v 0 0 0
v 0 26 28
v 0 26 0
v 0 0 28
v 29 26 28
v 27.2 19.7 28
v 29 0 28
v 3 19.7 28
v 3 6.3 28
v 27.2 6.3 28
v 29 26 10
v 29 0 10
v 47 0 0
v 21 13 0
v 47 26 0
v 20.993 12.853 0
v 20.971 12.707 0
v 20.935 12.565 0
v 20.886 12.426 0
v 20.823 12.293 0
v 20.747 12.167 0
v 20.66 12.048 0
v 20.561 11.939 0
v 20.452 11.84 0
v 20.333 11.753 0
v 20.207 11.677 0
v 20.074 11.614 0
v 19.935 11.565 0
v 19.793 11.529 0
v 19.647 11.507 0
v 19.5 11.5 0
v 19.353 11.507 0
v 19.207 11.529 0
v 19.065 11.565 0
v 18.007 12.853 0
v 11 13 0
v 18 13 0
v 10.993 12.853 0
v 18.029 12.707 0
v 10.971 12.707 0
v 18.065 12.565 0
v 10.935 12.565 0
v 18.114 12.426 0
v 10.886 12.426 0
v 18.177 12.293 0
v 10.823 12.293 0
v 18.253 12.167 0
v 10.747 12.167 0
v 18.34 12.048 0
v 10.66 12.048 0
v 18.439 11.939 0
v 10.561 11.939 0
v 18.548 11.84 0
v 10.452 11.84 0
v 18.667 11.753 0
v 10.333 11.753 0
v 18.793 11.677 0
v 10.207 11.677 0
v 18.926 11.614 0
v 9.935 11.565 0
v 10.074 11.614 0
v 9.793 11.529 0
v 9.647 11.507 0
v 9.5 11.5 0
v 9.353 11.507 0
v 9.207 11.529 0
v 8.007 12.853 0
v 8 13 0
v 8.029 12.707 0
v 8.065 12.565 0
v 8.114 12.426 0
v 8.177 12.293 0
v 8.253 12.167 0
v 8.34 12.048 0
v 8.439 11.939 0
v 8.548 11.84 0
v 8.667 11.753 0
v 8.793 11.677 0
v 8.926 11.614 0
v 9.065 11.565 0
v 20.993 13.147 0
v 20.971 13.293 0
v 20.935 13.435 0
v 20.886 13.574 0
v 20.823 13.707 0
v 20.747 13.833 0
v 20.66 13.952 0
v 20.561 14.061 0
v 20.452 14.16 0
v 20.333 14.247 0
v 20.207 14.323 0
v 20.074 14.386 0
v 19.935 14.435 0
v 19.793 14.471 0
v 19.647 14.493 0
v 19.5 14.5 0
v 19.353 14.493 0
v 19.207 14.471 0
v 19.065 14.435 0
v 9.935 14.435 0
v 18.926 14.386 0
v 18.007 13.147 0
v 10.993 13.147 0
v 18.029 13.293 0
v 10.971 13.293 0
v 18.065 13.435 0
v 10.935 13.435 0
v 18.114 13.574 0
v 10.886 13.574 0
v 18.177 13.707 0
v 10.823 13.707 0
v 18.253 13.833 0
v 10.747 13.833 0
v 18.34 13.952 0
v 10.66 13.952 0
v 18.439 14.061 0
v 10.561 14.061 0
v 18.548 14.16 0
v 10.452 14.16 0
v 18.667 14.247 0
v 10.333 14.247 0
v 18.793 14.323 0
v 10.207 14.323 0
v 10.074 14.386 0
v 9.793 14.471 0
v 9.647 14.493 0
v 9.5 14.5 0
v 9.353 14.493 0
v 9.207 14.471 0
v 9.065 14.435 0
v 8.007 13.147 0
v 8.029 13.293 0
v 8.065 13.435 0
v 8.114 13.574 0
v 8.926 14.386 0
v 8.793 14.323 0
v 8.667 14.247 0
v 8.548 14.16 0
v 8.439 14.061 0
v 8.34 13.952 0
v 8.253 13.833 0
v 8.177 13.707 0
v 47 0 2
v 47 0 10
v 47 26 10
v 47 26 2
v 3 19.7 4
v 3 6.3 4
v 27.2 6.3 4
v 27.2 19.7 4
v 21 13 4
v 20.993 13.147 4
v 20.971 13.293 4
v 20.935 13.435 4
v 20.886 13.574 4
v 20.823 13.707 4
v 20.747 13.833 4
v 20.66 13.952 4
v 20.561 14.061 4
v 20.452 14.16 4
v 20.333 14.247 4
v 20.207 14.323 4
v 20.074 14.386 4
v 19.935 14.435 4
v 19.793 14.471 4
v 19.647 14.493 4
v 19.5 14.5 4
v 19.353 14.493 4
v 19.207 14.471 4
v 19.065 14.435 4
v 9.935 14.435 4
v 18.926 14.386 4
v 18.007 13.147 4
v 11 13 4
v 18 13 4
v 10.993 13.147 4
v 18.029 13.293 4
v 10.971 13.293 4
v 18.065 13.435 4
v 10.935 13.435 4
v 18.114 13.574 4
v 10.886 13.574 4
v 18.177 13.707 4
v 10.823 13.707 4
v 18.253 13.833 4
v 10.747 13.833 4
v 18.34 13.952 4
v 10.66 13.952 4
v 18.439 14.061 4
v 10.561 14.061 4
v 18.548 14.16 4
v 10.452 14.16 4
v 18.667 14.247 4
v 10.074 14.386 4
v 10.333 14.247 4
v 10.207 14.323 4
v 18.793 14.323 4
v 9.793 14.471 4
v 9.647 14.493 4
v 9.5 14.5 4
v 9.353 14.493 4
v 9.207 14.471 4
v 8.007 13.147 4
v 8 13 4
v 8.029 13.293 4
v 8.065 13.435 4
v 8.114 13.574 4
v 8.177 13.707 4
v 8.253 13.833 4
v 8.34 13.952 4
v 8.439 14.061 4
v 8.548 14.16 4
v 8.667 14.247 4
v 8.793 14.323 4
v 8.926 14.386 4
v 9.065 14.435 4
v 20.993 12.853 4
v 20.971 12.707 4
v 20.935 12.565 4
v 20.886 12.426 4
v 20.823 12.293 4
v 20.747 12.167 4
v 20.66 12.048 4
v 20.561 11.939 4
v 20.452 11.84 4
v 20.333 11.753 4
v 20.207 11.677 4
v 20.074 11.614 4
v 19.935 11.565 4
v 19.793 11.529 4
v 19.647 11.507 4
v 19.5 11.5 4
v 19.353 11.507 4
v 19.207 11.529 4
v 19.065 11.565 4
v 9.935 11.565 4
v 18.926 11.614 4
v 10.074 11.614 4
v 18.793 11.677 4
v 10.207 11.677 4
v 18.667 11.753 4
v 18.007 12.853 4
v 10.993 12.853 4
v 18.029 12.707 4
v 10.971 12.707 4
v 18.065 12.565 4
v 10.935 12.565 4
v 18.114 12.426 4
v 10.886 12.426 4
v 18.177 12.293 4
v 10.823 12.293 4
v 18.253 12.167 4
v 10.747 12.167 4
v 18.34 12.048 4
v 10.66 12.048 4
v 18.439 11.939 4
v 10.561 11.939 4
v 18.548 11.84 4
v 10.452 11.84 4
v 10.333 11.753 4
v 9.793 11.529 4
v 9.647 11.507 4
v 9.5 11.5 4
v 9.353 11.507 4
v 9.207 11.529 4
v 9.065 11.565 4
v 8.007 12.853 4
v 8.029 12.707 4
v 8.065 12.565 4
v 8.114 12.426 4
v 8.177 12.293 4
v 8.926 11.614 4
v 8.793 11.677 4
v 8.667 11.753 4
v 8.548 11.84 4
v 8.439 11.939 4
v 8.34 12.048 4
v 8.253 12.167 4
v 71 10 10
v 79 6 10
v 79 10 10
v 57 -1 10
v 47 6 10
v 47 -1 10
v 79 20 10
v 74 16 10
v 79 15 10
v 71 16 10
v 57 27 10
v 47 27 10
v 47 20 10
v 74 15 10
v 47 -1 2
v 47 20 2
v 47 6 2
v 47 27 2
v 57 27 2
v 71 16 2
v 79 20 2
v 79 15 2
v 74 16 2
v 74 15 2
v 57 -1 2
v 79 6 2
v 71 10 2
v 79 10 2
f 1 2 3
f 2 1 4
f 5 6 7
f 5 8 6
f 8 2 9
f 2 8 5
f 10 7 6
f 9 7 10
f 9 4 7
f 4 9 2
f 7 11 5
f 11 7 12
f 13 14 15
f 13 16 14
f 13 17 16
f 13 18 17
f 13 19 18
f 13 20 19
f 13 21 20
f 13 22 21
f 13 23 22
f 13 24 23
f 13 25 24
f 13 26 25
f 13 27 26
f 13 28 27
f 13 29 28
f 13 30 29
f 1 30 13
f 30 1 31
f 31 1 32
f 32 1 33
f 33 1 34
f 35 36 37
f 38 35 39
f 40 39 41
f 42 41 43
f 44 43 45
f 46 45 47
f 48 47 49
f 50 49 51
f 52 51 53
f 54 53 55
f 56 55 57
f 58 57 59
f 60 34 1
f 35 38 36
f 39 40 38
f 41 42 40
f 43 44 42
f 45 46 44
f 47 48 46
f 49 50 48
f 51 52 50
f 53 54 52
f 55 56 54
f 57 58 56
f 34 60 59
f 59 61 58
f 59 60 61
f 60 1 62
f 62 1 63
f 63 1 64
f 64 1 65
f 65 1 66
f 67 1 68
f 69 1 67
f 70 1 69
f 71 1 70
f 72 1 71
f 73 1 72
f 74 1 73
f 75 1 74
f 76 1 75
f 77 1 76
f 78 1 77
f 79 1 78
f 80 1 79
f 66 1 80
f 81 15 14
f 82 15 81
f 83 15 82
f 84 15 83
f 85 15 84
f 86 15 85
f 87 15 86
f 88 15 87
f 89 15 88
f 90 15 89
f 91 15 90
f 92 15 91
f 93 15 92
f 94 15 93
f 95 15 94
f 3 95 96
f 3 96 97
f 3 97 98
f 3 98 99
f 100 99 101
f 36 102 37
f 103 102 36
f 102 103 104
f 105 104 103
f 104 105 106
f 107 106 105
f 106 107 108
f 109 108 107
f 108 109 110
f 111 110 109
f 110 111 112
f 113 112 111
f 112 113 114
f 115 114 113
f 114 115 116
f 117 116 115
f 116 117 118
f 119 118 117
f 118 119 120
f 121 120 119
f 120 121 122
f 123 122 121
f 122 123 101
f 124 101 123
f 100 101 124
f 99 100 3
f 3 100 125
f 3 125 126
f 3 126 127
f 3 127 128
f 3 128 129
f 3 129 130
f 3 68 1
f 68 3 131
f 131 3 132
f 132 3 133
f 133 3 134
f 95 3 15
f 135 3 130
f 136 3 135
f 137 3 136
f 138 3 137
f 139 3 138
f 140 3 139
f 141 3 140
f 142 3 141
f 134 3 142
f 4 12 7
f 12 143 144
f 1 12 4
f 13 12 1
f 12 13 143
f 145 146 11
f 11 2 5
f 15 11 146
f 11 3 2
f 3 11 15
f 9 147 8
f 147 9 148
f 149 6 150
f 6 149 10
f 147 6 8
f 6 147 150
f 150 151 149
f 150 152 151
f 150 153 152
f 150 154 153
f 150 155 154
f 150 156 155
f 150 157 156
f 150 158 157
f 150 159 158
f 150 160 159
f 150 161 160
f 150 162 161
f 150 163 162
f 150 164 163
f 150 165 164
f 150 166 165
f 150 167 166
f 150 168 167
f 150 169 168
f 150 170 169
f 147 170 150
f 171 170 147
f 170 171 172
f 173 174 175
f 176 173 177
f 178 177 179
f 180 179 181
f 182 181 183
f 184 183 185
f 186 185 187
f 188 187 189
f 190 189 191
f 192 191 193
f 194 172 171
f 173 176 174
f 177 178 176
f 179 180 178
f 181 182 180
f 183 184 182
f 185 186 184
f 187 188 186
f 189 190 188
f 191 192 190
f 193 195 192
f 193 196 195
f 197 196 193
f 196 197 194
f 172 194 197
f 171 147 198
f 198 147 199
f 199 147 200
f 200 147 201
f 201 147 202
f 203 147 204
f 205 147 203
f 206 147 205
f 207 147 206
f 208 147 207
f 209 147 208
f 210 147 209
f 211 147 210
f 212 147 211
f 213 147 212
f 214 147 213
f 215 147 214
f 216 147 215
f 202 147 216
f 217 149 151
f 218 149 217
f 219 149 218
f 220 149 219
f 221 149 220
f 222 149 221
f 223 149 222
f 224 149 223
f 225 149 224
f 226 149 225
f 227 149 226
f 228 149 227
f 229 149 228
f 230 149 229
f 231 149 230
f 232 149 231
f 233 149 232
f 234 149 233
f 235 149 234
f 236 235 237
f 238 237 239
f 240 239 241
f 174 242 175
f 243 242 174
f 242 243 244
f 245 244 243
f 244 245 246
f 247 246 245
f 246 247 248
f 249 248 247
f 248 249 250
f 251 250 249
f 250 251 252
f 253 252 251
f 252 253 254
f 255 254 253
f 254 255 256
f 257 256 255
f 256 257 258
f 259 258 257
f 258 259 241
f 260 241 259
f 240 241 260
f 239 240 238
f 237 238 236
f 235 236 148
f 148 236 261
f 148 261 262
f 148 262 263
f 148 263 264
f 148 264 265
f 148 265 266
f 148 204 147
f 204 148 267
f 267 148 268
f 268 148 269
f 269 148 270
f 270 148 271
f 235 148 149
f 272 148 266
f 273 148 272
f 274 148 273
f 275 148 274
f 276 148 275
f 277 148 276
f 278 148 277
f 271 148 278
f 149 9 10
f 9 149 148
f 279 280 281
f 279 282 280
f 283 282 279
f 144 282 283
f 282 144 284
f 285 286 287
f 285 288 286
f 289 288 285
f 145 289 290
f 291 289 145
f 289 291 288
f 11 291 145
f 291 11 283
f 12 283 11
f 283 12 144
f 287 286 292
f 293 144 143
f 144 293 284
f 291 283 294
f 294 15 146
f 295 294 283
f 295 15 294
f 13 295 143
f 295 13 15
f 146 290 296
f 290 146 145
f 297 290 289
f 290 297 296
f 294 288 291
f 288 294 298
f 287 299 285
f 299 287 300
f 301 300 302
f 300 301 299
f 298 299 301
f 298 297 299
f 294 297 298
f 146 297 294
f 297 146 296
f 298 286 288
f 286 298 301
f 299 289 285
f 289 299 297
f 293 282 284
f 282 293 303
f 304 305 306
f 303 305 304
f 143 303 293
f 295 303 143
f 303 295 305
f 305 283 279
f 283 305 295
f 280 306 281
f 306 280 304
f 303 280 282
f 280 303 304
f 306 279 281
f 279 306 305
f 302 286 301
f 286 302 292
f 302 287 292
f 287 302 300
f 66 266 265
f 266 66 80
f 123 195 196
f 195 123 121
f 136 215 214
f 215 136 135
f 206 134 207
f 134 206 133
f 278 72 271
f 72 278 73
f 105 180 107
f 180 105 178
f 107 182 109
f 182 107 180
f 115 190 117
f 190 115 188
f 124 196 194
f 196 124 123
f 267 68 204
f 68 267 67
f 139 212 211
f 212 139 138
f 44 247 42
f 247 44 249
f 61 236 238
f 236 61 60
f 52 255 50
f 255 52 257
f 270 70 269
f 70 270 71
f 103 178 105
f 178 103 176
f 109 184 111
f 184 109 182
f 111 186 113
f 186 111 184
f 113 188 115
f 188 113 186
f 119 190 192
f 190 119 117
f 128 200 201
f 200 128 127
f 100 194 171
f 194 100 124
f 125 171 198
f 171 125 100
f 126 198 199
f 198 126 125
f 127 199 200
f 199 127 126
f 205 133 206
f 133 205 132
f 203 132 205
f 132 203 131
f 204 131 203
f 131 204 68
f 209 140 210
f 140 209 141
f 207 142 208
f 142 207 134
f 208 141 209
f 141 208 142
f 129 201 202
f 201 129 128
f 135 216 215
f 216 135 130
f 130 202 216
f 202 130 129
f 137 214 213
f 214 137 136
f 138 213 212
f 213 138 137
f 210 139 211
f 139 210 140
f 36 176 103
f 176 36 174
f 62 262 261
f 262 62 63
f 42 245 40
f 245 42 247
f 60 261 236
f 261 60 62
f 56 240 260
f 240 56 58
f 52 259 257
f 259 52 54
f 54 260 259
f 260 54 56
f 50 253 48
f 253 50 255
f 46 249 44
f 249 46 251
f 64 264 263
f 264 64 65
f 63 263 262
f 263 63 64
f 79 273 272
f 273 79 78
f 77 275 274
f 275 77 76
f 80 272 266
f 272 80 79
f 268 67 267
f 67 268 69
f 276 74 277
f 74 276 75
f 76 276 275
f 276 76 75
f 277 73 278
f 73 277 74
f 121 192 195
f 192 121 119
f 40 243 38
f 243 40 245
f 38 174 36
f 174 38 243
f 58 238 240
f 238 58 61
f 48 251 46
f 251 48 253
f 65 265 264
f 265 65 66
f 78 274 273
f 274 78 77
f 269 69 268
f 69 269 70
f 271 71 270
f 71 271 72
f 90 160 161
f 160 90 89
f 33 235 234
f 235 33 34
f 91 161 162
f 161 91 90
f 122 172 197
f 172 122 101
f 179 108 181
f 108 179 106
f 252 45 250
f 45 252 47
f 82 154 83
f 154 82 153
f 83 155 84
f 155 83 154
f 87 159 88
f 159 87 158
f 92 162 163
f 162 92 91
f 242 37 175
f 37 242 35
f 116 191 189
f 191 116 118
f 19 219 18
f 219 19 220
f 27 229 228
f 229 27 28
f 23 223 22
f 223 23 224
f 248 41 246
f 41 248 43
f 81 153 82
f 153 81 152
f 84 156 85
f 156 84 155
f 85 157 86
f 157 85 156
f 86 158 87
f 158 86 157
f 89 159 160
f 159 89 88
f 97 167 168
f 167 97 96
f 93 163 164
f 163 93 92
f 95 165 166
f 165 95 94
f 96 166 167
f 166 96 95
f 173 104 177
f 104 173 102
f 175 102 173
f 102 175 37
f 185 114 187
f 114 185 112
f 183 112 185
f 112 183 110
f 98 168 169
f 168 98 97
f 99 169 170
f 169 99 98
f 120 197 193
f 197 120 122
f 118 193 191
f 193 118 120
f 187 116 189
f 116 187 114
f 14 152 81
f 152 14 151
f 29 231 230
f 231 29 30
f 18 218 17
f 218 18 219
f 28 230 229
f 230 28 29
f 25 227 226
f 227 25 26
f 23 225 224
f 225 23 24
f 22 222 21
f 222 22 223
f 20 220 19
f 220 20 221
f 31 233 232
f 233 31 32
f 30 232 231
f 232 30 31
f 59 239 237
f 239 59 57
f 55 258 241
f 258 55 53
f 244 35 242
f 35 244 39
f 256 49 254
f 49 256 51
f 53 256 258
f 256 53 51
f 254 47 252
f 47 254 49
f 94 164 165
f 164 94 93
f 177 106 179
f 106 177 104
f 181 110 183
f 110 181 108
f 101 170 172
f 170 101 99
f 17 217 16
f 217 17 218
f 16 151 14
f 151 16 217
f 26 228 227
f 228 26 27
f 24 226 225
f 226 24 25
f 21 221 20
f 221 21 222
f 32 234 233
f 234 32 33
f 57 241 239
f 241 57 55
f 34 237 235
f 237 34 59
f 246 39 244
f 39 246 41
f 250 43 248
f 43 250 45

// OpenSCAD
$fn = 64;

// ======================================================
// GRIP MODEL - GARRA EM FORMATO DE PINÇA
// Compatível com micro servo 9g
// Unidades em mm
// ======================================================

// ---------- PARÂMETROS DO SERVO ----------
servo_len = 23;       // comprimento do corpo do servo
servo_w   = 12.2;     // largura do corpo do servo
servo_h   = 24;       // altura do corpo do servo
clearance = 0.6;      // folga para encaixe

// ---------- PARÂMETROS GERAIS ----------
wall   = 3;
base_t = 4;

// ---------- PARÂMETROS DA GARRA ----------
body_len   = 18;      // corpo frontal da garra
body_w     = 26;      // largura do corpo frontal
body_h     = 10;      // altura do corpo frontal

finger_len      = 32; // comprimento dos dedos
finger_root_w   = 7;  // largura do dedo na base
finger_tip_w    = 4;  // largura do dedo na ponta
finger_t        = 8;  // espessura/altura do dedo
finger_gap_root = 14; // abertura entre dedos na base
finger_gap_tip  = 6;  // abertura entre dedos na ponta

mount_hole_d = 3;     // diâmetro dos furos de fixação

// ---------- MEDIDAS DERIVADAS ----------
servo_box_len = servo_len + 2*wall;
servo_box_w   = servo_w + 2*wall;
servo_box_h   = servo_h + base_t;

total_len = servo_box_len + body_len + finger_len;
total_w   = max(body_w, servo_box_w);

pocket_len = servo_len + 2*clearance;
pocket_w   = servo_w + 2*clearance;

// ======================================================
// MÓDULOS
// ======================================================

module servo_mount() {
    difference() {
        cube([servo_box_len, total_w, servo_box_h]);

        // cavidade para encaixe do servo
        translate([wall, (total_w - pocket_w)/2, base_t])
            cube([pocket_len, pocket_w, servo_h + 1]);
    }
}

module gripper_body() {
    translate([servo_box_len, (total_w - body_w)/2, 0])
        cube([body_len, body_w, body_h]);
}

module claw_finger(is_upper = true) {
    root_y = is_upper
        ? (total_w/2 + finger_gap_root/2)
        : (total_w/2 - finger_gap_root/2 - finger_root_w);

    tip_y = is_upper
        ? (total_w/2 + finger_gap_tip/2)
        : (total_w/2 - finger_gap_tip/2 - finger_tip_w);

    hull() {
        // base do dedo
        translate([servo_box_len + body_len, root_y, body_h - finger_t])
            cube([10, finger_root_w, finger_t]);

        // ponta do dedo
        translate([servo_box_len + body_len + finger_len - 8, tip_y, body_h - finger_t])
            cube([8, finger_tip_w, finger_t]);
    }
}

module claw_tip_pad(is_upper = true) {
    pad_y = is_upper
        ? (total_w/2 + finger_gap_tip/2 - 1)
        : (total_w/2 - finger_gap_tip/2 - 3);

    translate([servo_box_len + body_len + finger_len - 5, pad_y, body_h - finger_t])
        cube([5, 3, finger_t]);
}

// ======================================================
// PEÇA FINAL
// ======================================================

difference() {
    union() {
        servo_mount();
        gripper_body();
        claw_finger(true);   // dedo superior
        claw_finger(false);  // dedo inferior
        claw_tip_pad(true);
        claw_tip_pad(false);
    }

    // furos de fixação na base
    translate([servo_box_len/2 - 5, total_w/2, -1])
        cylinder(h = base_t + 2, d = mount_hole_d);

    translate([servo_box_len/2 + 5, total_w/2, -1])
        cylinder(h = base_t + 2, d = mount_hole_d);
}
